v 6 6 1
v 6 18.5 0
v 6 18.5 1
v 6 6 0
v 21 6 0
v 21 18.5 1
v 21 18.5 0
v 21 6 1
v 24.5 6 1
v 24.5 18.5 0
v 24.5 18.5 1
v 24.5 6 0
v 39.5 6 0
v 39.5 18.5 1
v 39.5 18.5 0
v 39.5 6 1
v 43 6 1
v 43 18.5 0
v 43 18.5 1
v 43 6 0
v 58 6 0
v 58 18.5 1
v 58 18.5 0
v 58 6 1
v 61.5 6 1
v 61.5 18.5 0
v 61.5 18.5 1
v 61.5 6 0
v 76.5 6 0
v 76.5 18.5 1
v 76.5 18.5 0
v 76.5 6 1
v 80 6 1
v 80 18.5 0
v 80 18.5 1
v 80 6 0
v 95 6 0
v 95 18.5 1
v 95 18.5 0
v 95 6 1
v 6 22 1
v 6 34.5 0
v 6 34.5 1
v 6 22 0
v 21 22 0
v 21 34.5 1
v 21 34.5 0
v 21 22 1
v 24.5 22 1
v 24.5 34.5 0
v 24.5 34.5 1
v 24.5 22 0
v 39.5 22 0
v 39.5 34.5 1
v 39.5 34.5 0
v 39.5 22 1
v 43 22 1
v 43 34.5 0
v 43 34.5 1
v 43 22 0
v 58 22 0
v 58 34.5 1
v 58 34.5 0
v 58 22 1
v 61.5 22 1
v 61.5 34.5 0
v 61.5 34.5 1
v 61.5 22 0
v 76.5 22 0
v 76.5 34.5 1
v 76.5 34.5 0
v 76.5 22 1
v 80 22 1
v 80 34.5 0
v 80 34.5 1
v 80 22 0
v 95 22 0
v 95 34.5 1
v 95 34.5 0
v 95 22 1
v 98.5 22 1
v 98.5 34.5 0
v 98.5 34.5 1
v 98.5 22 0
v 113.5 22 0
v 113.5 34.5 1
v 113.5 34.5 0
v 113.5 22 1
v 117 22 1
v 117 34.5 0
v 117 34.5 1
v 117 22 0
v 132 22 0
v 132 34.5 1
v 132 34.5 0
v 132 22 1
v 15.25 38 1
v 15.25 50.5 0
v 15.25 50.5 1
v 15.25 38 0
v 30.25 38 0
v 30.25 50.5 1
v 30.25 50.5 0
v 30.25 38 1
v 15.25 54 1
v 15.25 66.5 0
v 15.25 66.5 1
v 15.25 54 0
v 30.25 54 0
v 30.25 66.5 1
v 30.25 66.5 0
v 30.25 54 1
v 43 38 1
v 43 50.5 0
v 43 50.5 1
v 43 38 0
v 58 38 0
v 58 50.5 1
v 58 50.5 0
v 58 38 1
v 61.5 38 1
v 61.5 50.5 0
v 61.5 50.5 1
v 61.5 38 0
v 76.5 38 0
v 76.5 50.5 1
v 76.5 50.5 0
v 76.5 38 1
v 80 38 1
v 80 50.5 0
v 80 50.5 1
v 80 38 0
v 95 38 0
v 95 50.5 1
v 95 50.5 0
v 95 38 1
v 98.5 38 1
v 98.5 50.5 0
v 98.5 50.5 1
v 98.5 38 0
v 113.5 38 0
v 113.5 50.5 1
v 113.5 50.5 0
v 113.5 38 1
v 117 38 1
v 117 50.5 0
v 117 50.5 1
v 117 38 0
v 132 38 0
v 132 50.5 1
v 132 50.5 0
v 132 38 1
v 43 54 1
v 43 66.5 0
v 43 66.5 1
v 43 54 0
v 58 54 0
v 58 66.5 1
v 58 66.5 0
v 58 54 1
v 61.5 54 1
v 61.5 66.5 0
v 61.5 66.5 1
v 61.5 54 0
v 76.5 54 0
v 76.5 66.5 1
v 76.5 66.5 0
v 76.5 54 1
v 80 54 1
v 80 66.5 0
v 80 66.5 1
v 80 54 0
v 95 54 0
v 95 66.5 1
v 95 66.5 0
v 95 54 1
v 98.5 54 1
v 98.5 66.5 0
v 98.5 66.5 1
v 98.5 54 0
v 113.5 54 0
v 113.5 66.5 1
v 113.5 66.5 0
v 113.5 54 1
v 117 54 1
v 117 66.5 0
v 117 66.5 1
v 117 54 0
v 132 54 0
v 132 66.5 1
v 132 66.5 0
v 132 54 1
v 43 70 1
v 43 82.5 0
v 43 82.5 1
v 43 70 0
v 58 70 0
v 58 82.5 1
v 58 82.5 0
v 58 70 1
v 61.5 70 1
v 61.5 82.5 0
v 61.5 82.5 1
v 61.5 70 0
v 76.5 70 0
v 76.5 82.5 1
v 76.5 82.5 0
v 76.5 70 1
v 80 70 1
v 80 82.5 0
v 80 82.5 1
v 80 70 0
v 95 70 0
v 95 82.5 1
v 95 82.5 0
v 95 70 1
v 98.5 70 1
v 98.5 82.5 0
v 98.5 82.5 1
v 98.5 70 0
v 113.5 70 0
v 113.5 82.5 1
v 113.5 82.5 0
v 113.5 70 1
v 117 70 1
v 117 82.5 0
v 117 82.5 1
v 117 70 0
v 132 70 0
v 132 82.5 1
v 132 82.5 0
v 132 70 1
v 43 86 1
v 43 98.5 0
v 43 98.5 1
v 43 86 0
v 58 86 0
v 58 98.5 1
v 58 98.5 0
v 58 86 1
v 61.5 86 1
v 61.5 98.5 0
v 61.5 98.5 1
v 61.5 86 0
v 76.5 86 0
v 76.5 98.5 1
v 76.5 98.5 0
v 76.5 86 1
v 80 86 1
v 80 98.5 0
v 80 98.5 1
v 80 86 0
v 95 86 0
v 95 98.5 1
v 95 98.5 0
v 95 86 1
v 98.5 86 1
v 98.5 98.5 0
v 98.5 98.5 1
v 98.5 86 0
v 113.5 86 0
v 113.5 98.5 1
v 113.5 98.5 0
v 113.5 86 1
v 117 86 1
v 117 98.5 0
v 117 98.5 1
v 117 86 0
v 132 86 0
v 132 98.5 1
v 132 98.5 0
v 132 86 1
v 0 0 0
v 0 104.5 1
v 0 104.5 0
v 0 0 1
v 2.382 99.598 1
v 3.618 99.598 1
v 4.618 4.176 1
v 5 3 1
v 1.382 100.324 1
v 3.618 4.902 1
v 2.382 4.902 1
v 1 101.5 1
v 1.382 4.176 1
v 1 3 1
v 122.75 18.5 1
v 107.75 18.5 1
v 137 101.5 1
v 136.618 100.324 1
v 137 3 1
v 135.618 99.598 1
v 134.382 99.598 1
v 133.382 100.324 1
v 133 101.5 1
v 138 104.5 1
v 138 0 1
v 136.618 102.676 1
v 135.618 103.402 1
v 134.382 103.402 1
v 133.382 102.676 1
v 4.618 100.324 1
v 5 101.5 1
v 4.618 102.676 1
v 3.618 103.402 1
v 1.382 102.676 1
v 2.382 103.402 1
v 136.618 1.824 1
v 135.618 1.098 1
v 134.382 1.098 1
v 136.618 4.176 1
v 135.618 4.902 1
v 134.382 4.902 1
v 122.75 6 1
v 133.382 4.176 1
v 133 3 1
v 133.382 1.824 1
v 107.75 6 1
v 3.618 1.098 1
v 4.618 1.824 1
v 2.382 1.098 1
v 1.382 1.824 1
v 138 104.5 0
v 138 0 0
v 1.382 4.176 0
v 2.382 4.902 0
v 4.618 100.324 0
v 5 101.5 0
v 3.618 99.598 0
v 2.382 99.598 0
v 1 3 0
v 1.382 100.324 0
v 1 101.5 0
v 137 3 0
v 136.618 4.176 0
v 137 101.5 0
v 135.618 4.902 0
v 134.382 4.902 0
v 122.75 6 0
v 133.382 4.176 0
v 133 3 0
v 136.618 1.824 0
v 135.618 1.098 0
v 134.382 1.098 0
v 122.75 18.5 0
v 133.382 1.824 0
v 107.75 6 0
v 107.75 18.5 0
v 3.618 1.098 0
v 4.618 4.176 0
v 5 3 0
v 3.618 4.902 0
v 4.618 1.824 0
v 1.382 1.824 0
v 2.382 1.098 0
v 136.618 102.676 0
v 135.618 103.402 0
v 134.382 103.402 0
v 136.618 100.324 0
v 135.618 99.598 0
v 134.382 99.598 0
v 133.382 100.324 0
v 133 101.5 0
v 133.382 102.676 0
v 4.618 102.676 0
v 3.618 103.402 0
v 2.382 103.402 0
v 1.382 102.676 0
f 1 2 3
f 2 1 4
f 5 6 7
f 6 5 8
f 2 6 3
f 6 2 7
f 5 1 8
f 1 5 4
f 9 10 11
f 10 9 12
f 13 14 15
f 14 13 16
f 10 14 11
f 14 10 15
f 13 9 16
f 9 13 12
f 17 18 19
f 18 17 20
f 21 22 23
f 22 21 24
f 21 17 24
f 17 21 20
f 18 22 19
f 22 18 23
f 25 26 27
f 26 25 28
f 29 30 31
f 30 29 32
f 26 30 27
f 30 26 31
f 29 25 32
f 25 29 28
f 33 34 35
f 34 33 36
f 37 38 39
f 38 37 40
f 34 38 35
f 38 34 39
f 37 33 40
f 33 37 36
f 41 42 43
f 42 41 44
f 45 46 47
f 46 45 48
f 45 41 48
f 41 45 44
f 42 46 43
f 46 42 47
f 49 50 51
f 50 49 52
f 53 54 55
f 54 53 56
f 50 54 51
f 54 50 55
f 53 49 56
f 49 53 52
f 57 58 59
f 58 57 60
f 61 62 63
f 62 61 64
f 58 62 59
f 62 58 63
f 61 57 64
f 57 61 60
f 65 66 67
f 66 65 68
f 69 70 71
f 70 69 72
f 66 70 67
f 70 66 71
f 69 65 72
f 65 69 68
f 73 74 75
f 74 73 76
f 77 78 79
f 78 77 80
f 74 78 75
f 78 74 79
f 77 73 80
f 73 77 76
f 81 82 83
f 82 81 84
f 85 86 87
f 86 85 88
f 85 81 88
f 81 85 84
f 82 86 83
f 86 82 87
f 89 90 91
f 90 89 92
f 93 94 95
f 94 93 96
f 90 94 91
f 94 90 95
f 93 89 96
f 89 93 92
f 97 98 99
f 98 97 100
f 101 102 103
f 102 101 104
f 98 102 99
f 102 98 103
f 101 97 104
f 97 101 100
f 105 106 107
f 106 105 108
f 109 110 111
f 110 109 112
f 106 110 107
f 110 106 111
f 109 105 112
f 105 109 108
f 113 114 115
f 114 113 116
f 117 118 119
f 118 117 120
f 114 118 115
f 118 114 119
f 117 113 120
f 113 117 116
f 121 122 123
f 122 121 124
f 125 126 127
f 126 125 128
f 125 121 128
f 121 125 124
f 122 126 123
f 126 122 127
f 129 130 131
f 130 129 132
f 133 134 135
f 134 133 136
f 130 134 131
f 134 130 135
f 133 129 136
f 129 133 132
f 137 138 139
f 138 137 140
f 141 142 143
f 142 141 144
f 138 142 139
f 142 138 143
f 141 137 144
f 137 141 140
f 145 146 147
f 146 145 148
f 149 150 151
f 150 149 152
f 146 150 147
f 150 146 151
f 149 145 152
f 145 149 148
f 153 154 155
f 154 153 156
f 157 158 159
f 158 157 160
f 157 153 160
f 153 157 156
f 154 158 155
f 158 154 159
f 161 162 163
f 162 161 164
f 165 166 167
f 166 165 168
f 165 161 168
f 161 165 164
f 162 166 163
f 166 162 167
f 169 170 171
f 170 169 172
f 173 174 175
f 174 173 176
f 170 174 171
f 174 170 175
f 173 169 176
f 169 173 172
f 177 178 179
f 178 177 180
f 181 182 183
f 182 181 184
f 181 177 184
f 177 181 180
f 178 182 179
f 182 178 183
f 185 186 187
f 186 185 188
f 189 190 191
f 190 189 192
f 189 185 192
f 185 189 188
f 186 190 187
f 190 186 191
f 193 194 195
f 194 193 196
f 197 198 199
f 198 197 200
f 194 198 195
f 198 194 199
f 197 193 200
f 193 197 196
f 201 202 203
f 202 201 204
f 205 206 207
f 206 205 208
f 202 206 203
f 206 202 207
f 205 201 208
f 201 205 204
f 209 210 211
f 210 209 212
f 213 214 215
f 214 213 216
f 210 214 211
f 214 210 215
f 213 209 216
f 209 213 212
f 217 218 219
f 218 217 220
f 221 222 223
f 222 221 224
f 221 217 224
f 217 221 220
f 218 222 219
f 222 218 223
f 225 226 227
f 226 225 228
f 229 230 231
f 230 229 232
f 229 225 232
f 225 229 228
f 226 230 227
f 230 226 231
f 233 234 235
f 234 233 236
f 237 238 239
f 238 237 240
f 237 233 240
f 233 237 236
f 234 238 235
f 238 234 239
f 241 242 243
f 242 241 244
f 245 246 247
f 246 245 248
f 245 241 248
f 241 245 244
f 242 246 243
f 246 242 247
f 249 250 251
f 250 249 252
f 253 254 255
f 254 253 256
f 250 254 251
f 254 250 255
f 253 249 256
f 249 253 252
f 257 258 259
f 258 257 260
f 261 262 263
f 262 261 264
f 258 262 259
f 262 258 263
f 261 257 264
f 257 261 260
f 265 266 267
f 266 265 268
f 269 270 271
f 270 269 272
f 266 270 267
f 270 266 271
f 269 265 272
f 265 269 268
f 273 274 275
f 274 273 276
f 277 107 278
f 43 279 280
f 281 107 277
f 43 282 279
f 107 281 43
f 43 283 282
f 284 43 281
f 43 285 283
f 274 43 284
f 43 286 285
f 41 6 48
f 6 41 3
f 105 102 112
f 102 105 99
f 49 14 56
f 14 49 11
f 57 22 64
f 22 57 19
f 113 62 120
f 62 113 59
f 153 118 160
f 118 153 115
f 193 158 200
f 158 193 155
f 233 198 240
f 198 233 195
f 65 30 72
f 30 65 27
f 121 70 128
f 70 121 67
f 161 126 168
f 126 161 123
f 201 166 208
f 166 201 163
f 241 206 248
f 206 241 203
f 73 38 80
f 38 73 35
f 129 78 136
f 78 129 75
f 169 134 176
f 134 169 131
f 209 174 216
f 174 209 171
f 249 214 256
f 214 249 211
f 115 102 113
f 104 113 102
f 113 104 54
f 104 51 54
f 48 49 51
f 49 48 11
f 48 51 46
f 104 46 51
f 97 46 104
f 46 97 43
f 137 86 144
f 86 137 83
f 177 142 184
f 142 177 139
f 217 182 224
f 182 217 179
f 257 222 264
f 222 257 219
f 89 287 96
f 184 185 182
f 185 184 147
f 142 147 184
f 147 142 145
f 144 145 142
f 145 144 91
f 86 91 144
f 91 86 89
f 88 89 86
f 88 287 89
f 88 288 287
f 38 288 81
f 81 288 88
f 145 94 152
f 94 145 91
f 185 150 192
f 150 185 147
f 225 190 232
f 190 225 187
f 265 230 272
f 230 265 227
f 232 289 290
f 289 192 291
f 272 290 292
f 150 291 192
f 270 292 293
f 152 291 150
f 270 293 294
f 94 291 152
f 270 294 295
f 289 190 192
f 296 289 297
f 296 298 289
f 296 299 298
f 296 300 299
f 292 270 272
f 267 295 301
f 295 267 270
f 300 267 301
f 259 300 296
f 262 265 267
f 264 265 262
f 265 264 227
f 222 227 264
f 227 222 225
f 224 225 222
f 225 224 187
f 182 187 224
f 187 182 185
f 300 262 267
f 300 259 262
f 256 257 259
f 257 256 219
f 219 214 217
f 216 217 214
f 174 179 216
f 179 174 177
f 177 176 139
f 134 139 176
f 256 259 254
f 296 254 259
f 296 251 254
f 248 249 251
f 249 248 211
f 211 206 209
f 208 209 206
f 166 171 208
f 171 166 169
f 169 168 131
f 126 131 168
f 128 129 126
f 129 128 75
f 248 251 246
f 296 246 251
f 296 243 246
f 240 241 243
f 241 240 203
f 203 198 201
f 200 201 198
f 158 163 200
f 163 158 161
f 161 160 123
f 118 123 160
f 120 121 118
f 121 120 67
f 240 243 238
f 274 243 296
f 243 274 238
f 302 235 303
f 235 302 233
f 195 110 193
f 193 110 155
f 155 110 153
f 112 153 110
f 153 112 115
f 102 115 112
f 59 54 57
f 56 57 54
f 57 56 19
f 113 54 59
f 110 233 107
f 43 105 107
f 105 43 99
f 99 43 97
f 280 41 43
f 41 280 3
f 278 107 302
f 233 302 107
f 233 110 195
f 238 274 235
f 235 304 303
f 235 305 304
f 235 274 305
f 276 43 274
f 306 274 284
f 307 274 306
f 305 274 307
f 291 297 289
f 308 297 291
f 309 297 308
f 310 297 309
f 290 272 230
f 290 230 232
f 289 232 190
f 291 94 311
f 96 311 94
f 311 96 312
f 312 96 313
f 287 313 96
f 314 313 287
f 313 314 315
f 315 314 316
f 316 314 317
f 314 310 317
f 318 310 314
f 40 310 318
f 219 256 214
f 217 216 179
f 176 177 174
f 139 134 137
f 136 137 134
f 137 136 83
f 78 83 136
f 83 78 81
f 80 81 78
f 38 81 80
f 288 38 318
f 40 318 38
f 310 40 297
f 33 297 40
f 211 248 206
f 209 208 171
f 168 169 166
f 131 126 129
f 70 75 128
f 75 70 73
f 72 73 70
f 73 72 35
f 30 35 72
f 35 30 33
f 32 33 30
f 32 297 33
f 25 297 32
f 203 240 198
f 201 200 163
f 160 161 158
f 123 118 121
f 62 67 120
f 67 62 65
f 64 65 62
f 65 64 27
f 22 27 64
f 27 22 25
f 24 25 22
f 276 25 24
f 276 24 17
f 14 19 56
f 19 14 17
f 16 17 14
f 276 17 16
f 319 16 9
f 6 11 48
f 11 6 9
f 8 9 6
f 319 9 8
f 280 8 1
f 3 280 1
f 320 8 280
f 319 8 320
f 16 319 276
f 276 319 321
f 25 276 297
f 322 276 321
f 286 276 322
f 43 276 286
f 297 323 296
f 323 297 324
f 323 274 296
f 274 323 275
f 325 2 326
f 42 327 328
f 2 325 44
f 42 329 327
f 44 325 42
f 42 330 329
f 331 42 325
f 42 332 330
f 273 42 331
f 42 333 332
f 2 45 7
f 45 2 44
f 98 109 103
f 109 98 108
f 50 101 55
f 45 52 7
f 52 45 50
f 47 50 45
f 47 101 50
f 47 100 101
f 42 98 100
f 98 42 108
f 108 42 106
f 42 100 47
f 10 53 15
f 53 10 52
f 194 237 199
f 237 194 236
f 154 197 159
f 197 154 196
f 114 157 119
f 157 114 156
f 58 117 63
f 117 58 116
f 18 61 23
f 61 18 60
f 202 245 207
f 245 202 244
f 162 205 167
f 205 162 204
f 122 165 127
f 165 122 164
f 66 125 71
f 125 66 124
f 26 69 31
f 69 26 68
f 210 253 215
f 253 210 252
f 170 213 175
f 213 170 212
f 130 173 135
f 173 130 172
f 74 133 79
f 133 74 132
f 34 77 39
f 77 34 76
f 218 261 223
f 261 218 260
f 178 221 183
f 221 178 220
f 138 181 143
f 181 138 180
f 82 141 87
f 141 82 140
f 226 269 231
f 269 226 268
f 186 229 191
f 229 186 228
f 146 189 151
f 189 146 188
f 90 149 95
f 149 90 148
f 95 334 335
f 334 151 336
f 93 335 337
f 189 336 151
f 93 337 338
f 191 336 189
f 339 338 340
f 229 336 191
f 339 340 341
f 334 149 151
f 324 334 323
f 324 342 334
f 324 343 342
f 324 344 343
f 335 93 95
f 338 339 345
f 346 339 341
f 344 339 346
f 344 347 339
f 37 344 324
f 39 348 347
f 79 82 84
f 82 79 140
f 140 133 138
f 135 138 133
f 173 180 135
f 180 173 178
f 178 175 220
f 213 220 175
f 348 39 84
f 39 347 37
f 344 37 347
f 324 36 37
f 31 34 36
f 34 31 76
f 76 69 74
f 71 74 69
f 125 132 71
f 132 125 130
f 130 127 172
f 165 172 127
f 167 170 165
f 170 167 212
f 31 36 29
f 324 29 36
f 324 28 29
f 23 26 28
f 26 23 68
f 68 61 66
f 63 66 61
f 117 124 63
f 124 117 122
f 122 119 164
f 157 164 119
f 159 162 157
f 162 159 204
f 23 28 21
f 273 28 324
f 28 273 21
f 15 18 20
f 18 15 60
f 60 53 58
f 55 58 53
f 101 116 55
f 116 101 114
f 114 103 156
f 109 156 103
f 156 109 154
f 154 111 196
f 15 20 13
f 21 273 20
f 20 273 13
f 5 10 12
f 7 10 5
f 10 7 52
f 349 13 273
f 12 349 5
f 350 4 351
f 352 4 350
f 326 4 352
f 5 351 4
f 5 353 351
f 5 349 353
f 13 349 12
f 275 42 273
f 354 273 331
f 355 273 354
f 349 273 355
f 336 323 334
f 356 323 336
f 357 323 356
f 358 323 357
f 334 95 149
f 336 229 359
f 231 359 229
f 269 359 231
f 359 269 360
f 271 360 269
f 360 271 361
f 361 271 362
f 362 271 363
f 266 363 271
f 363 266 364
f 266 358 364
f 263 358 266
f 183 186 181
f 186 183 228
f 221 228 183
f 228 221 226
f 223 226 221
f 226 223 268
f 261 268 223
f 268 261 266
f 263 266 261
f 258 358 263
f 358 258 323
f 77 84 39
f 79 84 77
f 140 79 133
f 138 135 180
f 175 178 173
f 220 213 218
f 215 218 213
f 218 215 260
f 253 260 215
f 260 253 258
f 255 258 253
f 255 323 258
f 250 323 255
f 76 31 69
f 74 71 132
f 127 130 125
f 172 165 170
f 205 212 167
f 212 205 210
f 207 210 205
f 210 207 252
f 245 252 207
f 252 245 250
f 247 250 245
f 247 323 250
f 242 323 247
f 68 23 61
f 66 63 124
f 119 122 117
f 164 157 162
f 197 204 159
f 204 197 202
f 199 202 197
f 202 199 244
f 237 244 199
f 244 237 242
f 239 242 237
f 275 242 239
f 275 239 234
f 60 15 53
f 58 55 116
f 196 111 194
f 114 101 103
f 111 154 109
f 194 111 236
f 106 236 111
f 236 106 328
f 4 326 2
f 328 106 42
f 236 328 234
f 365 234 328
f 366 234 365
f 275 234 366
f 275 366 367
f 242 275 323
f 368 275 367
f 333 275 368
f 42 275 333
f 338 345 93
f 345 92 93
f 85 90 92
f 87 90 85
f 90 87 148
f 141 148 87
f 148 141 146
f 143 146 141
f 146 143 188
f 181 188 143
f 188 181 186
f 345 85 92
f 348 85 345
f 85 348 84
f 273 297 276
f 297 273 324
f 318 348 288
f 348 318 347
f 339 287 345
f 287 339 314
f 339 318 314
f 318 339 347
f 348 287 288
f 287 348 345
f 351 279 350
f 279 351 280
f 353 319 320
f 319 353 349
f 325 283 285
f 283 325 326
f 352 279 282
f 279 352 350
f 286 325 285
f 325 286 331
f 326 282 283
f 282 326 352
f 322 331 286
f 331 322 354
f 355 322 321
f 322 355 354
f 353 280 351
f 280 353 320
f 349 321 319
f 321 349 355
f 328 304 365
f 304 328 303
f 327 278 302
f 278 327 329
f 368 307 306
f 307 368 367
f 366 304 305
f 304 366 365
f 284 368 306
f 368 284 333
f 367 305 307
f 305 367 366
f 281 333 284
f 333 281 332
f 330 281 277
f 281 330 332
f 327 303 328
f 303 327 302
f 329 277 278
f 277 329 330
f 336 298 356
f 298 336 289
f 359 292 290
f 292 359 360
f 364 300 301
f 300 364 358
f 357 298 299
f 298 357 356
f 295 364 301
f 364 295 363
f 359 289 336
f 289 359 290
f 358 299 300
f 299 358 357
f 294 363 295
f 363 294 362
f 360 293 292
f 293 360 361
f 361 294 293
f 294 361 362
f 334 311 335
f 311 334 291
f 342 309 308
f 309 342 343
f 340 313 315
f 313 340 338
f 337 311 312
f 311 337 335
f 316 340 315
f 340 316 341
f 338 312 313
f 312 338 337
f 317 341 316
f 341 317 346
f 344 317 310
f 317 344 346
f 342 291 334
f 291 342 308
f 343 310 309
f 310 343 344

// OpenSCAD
/* ModuleA
 * All keyholes made. Should be valid for creation.
 */
keyCols = 7;
keyRows = 6;
keyX = 15;
keyY = 12.5;
keySpace = 3.5;
edgeSpaceAddition = 4;
edgeSpace = (edgeSpaceAddition*2)-keySpace;
keyZ = -1;

moduleX = (edgeSpace+edgeSpaceAddition)+(keySpace*keyCols)+keyX*(keyCols-1)+keyX;
moduleY = (edgeSpace+edgeSpaceAddition)+(keySpace*keyRows)+keyY*(keyRows-1)+keyY;
moduleZ = 1;

keySize = [keyX, keyY, moduleZ+2];

function position(x,y,z) = [edgeSpace+keySpace*x+keyX*(x-1)-(edgeSpaceAddition/2), edgeSpace+keySpace*y+keyY*(y-1)-(edgeSpaceAddition/2), z];

module keyHoles (yStart, yEnd, xStart, xEnd){
    for(y = [yStart:yEnd]){
        for(x = [xStart:xEnd]){
			translate(position(x,y,keyZ)) cube(keySize);
        }
    }
}

module screwHole (x, y){
	translate([x,y,keyZ]) cylinder(h=moduleZ+2, r=2, $fn=10);
}

difference(){
    cube([moduleX,moduleY,moduleZ]);

	keyHoles(1,1,1,5);
	keyHoles(1,1,6.5,6.5);

	keyHoles(2,2,1,7);

	keyHoles(3,4,1.5,1.5);
	keyHoles(3,4,3,7);

	keyHoles(5,6,3,7);
	screwHole(3,3);
	screwHole(3,moduleY-3);
	screwHole(moduleX-3,moduleY-3);
	screwHole(moduleX-3,3);
}
